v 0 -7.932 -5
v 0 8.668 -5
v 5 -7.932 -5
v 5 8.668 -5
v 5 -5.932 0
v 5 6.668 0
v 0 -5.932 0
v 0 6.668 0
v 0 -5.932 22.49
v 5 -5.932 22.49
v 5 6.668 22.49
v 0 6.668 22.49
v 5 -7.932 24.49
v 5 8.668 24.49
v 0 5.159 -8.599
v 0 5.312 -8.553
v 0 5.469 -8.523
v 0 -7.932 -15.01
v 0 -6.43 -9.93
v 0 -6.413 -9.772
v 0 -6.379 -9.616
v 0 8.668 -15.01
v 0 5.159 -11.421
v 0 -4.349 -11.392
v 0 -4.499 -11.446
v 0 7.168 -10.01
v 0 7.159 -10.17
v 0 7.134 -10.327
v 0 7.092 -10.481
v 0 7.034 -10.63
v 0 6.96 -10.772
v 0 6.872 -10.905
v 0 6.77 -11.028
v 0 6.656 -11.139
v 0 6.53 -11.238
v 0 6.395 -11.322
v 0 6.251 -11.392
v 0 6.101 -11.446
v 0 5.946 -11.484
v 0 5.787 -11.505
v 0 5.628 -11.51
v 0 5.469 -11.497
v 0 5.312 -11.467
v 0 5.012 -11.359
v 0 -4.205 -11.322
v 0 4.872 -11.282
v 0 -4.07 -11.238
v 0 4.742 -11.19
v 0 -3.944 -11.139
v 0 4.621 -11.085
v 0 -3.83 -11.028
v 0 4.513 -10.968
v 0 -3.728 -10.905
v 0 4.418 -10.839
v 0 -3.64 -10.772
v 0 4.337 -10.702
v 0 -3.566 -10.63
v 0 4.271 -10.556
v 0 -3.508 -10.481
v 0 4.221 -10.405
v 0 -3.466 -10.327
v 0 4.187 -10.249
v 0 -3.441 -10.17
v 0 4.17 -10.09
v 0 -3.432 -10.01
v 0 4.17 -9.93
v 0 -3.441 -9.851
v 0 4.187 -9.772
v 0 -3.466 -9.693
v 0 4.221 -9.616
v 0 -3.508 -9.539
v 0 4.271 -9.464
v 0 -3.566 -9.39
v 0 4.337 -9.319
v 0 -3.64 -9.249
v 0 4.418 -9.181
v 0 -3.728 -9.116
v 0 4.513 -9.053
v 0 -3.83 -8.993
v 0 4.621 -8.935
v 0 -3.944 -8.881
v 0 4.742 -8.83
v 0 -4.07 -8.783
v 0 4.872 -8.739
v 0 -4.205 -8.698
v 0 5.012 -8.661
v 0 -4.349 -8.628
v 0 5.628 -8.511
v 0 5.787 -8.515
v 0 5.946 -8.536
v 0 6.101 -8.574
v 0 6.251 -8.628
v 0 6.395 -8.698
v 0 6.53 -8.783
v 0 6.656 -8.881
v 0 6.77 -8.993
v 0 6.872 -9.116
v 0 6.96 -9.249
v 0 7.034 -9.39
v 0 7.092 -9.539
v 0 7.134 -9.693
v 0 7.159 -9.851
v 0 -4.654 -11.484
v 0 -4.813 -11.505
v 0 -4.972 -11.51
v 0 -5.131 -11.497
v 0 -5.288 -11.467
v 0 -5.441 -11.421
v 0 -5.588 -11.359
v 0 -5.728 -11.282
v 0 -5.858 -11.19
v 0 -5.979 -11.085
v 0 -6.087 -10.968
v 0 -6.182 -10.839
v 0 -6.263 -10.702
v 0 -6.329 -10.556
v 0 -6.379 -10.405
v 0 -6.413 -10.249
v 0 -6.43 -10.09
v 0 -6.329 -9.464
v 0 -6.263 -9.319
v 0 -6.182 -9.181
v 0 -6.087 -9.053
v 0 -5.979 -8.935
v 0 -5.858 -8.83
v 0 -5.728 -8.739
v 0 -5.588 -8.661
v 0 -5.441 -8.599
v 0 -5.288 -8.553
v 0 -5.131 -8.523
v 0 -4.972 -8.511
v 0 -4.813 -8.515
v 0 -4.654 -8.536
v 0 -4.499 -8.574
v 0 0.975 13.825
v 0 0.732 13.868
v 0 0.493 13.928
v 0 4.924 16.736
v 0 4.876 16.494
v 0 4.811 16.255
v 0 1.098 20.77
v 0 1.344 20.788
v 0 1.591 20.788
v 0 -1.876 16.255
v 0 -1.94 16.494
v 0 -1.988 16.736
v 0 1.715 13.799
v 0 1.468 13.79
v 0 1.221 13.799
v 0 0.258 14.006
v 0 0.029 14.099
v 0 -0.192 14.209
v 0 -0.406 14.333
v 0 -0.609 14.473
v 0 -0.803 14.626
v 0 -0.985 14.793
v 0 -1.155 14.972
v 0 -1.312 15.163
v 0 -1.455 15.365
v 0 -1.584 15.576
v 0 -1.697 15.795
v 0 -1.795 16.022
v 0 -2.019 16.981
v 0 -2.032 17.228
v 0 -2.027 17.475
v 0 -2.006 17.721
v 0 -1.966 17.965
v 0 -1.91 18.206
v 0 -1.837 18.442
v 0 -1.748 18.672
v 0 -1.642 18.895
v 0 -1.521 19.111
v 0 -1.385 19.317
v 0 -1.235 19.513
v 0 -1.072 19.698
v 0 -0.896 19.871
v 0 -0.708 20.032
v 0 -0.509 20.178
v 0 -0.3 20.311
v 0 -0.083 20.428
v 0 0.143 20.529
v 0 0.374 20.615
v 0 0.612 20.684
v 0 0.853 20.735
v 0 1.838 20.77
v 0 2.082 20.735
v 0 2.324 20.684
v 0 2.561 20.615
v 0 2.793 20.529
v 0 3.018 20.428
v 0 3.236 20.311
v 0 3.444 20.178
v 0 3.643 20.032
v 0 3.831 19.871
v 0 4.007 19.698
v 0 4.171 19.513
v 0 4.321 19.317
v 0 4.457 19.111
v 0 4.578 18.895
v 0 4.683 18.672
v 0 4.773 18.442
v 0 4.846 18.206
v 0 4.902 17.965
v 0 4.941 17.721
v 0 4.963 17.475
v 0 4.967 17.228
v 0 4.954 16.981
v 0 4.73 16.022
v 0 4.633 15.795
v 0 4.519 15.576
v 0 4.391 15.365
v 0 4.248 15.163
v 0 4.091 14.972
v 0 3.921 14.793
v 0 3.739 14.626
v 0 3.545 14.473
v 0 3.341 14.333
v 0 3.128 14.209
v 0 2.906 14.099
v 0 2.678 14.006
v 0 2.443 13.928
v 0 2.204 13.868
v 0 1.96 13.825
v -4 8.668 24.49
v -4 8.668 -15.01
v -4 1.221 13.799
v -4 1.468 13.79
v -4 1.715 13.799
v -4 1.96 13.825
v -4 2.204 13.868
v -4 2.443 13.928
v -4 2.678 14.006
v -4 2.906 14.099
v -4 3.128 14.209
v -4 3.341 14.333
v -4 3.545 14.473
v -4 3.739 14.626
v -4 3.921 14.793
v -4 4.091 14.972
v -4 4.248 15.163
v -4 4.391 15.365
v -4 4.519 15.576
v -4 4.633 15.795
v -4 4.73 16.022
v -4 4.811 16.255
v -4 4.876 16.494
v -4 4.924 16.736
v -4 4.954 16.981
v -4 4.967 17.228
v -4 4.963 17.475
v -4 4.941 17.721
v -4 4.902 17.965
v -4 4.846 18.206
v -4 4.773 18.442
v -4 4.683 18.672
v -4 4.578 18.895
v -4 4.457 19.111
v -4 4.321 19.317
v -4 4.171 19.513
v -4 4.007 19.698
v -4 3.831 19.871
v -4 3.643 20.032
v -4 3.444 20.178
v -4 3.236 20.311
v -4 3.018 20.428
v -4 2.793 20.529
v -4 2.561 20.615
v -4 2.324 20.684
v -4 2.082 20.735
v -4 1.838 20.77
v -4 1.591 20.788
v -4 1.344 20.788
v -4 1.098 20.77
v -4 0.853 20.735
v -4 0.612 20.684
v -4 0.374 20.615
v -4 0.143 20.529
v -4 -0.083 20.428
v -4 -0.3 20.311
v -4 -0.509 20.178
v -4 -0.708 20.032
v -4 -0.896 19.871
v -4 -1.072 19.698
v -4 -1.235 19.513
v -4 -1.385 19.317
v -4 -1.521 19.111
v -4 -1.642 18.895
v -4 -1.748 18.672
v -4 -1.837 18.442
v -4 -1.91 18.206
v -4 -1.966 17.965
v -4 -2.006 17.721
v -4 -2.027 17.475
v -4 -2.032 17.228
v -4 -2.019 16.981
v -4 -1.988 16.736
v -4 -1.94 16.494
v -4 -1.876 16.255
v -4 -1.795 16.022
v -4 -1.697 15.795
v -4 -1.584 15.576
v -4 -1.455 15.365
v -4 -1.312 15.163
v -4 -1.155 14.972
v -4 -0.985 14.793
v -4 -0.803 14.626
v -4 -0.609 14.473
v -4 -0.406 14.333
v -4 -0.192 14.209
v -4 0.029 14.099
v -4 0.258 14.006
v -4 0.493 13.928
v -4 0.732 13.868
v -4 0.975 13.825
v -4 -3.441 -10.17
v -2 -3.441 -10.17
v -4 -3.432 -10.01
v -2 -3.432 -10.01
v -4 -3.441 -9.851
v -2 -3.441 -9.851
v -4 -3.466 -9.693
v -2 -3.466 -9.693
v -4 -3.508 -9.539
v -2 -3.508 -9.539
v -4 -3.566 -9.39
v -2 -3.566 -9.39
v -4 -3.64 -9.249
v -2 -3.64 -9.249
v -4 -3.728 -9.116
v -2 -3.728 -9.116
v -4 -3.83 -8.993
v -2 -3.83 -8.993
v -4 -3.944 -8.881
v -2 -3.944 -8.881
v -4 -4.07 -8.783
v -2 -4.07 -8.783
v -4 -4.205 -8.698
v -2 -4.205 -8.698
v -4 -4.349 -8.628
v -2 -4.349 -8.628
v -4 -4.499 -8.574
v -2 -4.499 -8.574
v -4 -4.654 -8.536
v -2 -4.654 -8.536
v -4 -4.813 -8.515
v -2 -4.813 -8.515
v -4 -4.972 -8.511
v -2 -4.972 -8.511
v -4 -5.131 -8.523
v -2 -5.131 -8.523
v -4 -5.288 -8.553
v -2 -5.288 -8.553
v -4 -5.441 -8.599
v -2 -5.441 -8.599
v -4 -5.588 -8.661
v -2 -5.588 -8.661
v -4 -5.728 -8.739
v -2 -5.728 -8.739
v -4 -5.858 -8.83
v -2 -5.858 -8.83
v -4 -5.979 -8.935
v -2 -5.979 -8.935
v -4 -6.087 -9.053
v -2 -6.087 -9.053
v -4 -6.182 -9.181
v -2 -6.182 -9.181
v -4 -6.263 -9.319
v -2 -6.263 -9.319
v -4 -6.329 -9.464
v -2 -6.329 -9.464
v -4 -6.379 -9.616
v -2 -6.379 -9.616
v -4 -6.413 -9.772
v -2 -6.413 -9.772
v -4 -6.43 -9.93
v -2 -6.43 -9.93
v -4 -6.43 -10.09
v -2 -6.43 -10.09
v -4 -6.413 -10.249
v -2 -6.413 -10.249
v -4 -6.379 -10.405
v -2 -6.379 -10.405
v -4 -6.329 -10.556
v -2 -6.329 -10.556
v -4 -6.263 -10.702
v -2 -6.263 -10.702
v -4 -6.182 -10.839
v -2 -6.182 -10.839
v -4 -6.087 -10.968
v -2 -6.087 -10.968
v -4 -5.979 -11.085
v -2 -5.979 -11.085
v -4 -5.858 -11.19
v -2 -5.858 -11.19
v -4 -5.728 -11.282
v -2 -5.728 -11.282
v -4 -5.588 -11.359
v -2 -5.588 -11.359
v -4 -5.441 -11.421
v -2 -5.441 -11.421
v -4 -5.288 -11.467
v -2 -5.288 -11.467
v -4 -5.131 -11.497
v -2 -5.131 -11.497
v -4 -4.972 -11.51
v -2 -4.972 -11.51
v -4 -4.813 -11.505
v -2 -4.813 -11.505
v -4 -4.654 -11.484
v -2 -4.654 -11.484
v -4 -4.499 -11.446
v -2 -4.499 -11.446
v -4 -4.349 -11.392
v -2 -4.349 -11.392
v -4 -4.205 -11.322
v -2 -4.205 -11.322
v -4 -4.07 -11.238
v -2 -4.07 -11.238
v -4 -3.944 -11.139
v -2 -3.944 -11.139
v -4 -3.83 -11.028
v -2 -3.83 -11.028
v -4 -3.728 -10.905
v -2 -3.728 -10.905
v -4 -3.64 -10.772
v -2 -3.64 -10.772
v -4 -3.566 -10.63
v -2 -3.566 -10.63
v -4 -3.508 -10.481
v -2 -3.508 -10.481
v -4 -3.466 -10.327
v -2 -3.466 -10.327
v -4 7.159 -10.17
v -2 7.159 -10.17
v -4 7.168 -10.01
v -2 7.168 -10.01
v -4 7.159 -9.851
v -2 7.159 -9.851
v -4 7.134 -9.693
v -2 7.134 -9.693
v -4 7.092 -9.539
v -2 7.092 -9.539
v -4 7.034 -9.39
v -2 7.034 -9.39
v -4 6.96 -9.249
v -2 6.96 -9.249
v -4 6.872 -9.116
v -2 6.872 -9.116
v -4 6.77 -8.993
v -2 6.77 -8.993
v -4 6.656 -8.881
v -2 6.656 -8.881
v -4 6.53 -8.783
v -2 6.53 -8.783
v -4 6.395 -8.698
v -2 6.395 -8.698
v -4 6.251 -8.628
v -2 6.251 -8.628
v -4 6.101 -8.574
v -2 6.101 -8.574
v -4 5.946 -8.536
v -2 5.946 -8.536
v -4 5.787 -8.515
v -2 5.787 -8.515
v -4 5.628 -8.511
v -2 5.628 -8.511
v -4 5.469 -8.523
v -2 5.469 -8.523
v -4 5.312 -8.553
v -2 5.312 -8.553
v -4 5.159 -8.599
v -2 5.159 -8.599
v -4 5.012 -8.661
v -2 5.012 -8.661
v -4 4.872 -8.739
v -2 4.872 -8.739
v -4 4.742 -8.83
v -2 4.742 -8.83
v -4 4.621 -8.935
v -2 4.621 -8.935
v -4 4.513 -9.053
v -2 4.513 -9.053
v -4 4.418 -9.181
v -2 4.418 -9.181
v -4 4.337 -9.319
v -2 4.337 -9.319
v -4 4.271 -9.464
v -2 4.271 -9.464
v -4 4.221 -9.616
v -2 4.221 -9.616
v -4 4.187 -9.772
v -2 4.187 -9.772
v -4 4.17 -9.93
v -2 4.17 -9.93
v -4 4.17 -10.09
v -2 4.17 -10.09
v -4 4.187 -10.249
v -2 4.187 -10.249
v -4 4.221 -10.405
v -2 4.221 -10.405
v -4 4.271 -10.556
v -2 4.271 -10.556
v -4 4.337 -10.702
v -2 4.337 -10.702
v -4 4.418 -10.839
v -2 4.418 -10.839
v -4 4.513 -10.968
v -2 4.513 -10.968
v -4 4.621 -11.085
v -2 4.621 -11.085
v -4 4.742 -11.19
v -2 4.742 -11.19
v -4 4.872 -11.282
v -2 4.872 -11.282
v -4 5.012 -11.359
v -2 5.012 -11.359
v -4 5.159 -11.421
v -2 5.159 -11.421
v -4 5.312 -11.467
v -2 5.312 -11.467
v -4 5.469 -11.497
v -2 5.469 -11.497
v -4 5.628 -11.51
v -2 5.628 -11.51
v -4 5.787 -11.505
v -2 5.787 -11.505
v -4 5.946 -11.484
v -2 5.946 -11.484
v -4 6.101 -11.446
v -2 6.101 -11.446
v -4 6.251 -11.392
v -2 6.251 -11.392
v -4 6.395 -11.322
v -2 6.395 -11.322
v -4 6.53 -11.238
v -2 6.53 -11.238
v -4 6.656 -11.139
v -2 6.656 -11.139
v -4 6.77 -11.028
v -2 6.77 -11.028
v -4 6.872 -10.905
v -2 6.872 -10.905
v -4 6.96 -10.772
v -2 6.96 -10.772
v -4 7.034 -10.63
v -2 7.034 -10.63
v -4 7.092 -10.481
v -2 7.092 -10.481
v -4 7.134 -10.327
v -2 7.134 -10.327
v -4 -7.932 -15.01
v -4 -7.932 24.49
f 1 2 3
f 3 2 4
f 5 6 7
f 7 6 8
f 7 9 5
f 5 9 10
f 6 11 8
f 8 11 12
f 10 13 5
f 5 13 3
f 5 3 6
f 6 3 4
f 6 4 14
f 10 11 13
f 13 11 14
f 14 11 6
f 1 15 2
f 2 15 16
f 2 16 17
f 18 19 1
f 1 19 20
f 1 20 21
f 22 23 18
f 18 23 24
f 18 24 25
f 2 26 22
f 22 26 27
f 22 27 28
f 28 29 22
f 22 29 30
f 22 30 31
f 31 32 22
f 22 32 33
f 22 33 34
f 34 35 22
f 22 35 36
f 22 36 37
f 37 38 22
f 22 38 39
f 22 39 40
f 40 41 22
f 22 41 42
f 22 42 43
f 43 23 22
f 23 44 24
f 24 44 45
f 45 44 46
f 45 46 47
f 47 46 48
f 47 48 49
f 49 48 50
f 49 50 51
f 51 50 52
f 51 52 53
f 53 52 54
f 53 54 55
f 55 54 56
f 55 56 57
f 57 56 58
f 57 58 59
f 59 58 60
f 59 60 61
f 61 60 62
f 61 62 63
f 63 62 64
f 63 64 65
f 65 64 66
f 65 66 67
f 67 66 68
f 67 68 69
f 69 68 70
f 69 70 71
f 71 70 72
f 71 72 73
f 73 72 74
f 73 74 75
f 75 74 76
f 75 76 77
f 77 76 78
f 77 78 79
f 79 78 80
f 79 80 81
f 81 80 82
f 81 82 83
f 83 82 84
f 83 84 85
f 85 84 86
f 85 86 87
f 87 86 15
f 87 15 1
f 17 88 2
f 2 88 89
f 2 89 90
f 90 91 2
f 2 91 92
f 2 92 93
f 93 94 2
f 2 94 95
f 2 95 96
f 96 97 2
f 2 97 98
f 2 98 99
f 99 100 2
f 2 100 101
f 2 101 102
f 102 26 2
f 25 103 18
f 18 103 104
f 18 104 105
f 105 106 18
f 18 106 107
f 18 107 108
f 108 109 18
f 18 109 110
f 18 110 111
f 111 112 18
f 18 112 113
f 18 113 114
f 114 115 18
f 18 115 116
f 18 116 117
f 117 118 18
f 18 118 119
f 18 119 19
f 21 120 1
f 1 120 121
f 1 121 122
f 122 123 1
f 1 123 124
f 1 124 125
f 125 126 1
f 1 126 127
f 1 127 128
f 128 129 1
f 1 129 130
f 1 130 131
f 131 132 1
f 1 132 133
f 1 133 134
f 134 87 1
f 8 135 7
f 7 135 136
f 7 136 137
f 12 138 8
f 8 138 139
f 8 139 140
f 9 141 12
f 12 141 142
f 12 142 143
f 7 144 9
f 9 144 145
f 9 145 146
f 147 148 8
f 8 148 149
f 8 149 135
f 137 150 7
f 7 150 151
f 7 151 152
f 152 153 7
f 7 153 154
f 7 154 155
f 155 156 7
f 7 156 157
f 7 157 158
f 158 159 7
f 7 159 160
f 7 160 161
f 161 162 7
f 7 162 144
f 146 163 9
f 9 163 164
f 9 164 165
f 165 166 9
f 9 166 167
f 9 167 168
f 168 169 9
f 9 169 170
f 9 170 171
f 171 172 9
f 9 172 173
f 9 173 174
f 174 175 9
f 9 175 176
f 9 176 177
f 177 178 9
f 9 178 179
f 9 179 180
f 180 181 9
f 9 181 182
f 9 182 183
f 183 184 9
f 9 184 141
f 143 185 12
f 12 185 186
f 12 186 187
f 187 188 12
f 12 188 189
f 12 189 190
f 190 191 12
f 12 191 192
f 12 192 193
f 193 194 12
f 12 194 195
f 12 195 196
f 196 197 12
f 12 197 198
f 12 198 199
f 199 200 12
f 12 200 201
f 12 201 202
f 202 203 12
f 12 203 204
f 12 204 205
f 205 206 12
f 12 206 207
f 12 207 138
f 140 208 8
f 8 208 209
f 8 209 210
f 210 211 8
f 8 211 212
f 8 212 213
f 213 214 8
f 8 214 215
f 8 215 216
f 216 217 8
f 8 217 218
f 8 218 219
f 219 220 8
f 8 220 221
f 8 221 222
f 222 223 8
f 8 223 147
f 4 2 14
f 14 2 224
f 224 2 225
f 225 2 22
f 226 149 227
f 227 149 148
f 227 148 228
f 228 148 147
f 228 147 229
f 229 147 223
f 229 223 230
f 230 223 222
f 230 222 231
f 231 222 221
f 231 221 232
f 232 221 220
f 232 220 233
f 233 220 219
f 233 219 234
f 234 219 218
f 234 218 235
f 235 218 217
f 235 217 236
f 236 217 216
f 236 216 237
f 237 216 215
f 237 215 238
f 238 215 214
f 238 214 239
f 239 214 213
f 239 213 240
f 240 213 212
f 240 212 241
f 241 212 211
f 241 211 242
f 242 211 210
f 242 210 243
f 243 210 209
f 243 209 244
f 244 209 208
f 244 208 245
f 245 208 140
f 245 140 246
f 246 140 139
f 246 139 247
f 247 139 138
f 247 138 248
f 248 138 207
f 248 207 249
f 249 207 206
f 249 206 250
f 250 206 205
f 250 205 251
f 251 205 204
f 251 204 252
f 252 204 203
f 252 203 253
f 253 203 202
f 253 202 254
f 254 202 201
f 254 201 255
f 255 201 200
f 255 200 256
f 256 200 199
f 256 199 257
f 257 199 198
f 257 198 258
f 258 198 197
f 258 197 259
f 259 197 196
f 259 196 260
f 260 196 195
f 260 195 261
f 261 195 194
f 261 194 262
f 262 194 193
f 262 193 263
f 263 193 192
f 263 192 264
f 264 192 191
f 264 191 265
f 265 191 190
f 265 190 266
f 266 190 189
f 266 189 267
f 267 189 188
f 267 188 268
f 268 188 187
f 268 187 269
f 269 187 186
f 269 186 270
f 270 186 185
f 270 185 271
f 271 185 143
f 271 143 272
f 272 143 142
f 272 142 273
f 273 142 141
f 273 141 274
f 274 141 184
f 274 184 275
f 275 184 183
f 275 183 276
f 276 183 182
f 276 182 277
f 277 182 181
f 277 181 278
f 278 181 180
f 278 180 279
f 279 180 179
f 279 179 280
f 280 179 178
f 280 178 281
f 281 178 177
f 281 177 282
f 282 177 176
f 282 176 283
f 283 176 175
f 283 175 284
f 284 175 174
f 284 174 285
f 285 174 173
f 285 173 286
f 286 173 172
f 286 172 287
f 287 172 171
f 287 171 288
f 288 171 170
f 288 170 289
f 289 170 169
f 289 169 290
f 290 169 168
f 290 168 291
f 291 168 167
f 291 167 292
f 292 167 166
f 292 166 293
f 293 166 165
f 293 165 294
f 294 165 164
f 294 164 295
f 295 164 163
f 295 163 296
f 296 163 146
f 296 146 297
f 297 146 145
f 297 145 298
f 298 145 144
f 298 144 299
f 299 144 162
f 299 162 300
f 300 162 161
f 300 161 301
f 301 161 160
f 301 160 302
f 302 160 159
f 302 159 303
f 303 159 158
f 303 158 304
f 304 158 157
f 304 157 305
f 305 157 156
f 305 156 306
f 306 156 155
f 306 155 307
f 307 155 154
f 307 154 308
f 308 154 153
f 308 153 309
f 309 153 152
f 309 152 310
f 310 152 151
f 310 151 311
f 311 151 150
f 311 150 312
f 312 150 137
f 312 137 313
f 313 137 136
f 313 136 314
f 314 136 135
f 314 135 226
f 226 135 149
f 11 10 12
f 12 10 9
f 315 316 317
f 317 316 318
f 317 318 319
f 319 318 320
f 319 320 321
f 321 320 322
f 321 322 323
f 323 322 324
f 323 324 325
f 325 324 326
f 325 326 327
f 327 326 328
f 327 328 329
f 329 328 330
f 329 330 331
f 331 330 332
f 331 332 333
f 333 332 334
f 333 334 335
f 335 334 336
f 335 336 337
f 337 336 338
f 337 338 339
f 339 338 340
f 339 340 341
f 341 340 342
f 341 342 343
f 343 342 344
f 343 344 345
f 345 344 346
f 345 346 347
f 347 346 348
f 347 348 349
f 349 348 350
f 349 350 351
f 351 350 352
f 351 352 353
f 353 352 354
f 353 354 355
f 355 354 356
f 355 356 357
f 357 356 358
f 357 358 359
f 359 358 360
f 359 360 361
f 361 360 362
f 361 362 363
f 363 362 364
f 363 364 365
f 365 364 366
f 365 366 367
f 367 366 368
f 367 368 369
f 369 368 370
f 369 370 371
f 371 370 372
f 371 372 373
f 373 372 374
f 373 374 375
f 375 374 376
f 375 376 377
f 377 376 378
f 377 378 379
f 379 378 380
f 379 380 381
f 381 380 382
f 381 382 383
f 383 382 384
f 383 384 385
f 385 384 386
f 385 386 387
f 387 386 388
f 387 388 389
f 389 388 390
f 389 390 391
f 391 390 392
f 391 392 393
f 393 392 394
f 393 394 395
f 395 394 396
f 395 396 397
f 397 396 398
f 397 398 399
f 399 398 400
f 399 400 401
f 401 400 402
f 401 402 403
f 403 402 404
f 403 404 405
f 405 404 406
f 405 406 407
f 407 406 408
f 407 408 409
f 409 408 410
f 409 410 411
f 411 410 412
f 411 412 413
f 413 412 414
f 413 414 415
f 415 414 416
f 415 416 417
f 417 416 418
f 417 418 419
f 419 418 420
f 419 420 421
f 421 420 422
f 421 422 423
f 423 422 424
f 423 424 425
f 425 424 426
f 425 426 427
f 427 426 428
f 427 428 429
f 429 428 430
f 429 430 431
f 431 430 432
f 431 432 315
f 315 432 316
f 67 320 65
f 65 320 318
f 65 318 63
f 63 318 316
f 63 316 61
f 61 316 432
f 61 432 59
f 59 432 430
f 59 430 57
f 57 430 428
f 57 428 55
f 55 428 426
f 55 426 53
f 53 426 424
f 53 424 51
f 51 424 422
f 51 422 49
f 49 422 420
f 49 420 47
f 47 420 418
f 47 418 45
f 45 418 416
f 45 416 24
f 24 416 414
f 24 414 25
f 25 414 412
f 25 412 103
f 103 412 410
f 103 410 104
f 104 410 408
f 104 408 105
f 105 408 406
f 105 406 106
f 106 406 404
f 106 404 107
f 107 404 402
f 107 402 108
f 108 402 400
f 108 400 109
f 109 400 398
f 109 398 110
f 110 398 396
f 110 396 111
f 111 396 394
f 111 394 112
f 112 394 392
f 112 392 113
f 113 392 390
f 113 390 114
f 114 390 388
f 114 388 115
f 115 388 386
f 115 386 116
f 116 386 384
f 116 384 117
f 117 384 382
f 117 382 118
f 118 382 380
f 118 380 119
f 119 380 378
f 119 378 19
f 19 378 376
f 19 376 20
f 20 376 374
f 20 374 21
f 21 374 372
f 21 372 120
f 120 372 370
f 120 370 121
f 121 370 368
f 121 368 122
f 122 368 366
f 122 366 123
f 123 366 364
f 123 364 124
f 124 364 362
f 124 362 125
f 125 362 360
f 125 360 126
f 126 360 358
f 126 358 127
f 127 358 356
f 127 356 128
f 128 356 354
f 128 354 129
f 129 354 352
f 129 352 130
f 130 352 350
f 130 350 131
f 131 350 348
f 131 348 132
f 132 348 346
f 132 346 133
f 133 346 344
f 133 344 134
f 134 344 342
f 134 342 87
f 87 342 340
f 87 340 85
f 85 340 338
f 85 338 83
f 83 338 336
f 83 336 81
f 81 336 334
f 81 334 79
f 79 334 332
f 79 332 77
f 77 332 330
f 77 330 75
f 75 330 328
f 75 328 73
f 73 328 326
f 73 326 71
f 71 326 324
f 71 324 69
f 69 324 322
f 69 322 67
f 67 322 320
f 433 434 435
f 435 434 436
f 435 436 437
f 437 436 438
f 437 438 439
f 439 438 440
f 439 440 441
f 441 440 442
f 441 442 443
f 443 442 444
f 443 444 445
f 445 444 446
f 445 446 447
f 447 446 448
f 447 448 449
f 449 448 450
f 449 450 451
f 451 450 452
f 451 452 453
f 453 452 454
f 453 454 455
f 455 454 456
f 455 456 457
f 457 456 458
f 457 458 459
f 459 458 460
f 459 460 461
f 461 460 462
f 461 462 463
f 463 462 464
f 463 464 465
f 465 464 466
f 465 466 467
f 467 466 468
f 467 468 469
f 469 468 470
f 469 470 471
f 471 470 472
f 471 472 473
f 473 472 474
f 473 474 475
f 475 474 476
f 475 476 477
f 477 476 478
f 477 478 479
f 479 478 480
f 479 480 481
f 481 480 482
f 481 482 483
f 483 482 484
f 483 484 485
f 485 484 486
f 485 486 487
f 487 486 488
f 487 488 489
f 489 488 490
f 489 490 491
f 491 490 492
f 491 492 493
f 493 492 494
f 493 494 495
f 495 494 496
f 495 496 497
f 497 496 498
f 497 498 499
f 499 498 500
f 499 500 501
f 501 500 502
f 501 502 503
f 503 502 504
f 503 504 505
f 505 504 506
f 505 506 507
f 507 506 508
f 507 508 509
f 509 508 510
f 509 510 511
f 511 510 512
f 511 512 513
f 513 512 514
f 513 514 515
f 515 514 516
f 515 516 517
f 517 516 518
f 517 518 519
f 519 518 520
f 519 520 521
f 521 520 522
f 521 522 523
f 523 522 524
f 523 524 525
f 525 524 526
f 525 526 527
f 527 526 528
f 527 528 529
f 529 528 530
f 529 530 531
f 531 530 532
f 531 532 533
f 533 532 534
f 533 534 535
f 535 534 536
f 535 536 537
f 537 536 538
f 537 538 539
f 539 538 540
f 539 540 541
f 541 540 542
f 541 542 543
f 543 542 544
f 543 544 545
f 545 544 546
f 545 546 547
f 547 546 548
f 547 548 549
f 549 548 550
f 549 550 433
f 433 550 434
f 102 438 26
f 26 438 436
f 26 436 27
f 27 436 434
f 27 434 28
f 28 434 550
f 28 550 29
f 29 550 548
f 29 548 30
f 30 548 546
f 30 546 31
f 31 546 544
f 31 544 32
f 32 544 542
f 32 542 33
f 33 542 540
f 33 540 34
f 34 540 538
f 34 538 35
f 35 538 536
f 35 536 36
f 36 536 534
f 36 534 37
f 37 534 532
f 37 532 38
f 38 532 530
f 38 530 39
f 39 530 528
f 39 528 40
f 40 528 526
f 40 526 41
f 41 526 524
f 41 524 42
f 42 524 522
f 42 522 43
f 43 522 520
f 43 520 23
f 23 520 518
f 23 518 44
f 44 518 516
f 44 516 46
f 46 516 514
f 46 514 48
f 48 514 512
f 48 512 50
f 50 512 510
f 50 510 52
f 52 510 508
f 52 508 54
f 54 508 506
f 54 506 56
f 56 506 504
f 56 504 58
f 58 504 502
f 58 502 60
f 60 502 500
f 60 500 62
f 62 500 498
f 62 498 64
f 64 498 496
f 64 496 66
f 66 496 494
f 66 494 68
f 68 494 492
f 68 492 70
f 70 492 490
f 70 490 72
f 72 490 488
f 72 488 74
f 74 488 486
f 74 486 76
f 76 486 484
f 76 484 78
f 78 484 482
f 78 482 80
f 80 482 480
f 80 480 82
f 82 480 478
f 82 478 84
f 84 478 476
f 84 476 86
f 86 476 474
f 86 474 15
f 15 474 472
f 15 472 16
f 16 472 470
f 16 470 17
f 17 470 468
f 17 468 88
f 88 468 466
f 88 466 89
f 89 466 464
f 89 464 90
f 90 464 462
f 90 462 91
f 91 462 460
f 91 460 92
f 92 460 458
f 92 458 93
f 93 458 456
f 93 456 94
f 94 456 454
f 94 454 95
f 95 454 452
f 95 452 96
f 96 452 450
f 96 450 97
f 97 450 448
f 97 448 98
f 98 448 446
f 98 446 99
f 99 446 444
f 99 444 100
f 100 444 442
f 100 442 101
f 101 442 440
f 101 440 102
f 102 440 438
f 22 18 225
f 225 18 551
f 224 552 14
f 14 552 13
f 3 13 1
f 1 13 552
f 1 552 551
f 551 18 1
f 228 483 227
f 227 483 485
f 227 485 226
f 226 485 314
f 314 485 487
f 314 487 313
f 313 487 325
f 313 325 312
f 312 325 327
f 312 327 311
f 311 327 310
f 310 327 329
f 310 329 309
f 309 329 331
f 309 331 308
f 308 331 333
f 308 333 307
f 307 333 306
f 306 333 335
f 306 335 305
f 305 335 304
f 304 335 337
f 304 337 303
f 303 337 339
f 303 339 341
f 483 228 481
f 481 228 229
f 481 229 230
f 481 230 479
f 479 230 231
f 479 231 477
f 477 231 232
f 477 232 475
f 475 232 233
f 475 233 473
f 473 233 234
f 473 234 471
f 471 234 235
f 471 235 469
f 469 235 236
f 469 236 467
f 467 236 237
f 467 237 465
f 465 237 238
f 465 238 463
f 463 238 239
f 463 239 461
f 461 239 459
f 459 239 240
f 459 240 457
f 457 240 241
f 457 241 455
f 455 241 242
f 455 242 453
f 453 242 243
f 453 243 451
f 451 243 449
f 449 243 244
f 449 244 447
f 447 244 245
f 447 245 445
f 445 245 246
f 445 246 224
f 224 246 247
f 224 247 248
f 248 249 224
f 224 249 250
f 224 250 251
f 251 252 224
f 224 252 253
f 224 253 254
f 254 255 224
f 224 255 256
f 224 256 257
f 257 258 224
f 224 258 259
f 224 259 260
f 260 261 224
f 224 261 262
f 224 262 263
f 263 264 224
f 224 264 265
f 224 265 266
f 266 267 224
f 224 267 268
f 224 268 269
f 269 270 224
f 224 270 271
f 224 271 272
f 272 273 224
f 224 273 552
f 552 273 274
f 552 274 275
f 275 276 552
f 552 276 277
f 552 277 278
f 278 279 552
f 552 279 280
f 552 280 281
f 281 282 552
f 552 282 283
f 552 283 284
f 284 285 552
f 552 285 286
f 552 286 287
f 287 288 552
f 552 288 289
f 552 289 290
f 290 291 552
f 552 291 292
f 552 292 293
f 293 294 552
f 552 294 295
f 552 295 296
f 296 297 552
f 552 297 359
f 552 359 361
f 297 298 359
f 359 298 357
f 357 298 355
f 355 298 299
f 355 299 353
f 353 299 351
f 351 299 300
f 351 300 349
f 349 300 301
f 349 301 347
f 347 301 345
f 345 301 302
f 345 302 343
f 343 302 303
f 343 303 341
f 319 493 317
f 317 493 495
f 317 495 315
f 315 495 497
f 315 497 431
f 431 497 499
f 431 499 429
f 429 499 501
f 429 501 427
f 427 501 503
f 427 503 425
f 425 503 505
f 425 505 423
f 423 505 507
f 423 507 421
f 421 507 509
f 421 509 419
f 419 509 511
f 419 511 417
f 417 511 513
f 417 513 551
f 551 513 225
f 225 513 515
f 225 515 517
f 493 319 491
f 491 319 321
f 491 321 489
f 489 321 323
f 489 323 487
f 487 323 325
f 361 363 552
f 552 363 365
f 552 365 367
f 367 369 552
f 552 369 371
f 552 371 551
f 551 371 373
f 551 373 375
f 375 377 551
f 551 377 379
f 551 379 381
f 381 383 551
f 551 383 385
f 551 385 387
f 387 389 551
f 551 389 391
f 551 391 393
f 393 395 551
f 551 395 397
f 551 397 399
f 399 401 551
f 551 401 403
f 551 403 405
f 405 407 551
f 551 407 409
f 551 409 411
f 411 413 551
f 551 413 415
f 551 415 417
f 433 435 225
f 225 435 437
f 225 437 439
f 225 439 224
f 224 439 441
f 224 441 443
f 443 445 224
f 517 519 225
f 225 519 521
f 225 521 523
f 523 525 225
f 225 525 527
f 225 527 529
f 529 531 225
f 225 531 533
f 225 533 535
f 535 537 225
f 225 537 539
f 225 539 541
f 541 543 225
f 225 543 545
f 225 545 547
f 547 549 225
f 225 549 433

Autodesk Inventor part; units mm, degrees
ref_plane "YZ Plane" through (0, 0, 0) normal (1, 0, 0) x (0, 1, 0)
ref_plane "XZ Plane" through (0, 0, 0) normal (0, 1, 0) x (-1, 0, 0)
ref_plane "XY Plane" through (0, 0, 0) normal (0, 0, 1) x (1, 0, 0)
sketch "スケッチ1" plane through (0, 0, 0) normal (1, 0, 0) x (0, 1, 0)
  line L0 (8.6678, 22.4898) -> (-7.9322, 22.4898)
  line L1 (-7.9322, 22.4898) -> (-7.9322, -15.0102)
  line L2 (-7.9322, -15.0102) -> (8.6678, -15.0102)
  line L3 (8.6678, -15.0102) -> (8.6678, 22.4898)
  line L4 (8.6678, 22.4898) -> (6.6678, 22.4898)
  line L5 (6.6678, 22.4898) -> (6.6678, -0.0102)
  line L6 (6.6678, -0.0102) -> (8.6678, -0.0102)
  line L7 (8.6678, -0.0102) -> (8.6678, 22.4898)
  line L8 (-7.9322, 22.4898) -> (-5.9322, 22.4898)
  line L9 (-5.9322, 22.4898) -> (-5.9322, -0.0102)
  line L10 (-5.9322, -0.0102) -> (-7.9322, -0.0102)
  line L11 (-7.9322, -0.0102) -> (-7.9322, 22.4898)
  line L12 (8.6678, 22.4898) -> (-7.9322, 22.4898)
  line L13 (-7.9322, 22.4898) -> (-7.9322, 24.4898)
  line L14 (-7.9322, 24.4898) -> (8.6678, 24.4898)
  line L15 (8.6678, 24.4898) -> (8.6678, 22.4898)
  circle A0 centre (5.6678, -10.0102) radius 1.5
  circle A1 centre (-4.9322, -10.0102) radius 1.5
  point P0 (0, 0)
  dimension "d1" = 2
  dimension "d2" = 2
  dimension "d3" = 15
  dimension "d4" = 22.5
  dimension "d5" = 2
  dimension "d6" = 3
  dimension "d7" = 3
  dimension "d8" = 5
  dimension "d9" = 5
  dimension "d10" = 3
  dimension "d11" = 3
  dimension "d25" = 12.6
  dimension "d26" = 16.6
extrude "押し出し1" add sketch "スケッチ1" against normal blind 4
extrude "押し出し2" add sketch "スケッチ1" along normal blind 5 contours L3 L6 L5 L0 | L0 L13 L14 L15 | L9 L10 L1 L0
sketch "スケッチ2" plane through (0, 0, 0) normal (1, 0, 0) x (0, 0, -1)
  circle A0 centre (-17.2898, 1.4678) radius 3.5
  line L0 (-24.4898, 8.6678) -> (-24.4898, -7.9322) projected
  line L1 (0.0102, 8.6678) -> (-24.4898, 8.6678) projected
  line L2 (-24.4898, -7.9322) -> (0.0102, -7.9322) projected
  point P0 (0, 0)
  dimension "d16" = 7
  dimension "d17" = 7.2
  dimension "d18" = 7.2
  dimension "d19" = 9.4
extrude "押し出し3" cut sketch "スケッチ2" against normal blind 5
sketch "スケッチ3" plane through (0, 0, 0) normal (1, 0, 0) x (0, 0, -1)
  line L0 (-24.4898, 8.6678) -> (15.0102, 8.6678) projected
  line L1 (0.0102, -7.9322) -> (15.0102, -7.9322) projected
  line L2 (0, 8.6678) -> (5, 8.6678)
  line L3 (5, 8.6678) -> (5, -7.9322)
  line L4 (5, -7.9322) -> (0, -7.9322)
  line L5 (0, -7.9322) -> (0, 8.6678)
  point P0 (0, 0)
  dimension "d22" = 5
extrude "押し出し4" add sketch "スケッチ3" along normal blind 5
properties part number "armpart2"
